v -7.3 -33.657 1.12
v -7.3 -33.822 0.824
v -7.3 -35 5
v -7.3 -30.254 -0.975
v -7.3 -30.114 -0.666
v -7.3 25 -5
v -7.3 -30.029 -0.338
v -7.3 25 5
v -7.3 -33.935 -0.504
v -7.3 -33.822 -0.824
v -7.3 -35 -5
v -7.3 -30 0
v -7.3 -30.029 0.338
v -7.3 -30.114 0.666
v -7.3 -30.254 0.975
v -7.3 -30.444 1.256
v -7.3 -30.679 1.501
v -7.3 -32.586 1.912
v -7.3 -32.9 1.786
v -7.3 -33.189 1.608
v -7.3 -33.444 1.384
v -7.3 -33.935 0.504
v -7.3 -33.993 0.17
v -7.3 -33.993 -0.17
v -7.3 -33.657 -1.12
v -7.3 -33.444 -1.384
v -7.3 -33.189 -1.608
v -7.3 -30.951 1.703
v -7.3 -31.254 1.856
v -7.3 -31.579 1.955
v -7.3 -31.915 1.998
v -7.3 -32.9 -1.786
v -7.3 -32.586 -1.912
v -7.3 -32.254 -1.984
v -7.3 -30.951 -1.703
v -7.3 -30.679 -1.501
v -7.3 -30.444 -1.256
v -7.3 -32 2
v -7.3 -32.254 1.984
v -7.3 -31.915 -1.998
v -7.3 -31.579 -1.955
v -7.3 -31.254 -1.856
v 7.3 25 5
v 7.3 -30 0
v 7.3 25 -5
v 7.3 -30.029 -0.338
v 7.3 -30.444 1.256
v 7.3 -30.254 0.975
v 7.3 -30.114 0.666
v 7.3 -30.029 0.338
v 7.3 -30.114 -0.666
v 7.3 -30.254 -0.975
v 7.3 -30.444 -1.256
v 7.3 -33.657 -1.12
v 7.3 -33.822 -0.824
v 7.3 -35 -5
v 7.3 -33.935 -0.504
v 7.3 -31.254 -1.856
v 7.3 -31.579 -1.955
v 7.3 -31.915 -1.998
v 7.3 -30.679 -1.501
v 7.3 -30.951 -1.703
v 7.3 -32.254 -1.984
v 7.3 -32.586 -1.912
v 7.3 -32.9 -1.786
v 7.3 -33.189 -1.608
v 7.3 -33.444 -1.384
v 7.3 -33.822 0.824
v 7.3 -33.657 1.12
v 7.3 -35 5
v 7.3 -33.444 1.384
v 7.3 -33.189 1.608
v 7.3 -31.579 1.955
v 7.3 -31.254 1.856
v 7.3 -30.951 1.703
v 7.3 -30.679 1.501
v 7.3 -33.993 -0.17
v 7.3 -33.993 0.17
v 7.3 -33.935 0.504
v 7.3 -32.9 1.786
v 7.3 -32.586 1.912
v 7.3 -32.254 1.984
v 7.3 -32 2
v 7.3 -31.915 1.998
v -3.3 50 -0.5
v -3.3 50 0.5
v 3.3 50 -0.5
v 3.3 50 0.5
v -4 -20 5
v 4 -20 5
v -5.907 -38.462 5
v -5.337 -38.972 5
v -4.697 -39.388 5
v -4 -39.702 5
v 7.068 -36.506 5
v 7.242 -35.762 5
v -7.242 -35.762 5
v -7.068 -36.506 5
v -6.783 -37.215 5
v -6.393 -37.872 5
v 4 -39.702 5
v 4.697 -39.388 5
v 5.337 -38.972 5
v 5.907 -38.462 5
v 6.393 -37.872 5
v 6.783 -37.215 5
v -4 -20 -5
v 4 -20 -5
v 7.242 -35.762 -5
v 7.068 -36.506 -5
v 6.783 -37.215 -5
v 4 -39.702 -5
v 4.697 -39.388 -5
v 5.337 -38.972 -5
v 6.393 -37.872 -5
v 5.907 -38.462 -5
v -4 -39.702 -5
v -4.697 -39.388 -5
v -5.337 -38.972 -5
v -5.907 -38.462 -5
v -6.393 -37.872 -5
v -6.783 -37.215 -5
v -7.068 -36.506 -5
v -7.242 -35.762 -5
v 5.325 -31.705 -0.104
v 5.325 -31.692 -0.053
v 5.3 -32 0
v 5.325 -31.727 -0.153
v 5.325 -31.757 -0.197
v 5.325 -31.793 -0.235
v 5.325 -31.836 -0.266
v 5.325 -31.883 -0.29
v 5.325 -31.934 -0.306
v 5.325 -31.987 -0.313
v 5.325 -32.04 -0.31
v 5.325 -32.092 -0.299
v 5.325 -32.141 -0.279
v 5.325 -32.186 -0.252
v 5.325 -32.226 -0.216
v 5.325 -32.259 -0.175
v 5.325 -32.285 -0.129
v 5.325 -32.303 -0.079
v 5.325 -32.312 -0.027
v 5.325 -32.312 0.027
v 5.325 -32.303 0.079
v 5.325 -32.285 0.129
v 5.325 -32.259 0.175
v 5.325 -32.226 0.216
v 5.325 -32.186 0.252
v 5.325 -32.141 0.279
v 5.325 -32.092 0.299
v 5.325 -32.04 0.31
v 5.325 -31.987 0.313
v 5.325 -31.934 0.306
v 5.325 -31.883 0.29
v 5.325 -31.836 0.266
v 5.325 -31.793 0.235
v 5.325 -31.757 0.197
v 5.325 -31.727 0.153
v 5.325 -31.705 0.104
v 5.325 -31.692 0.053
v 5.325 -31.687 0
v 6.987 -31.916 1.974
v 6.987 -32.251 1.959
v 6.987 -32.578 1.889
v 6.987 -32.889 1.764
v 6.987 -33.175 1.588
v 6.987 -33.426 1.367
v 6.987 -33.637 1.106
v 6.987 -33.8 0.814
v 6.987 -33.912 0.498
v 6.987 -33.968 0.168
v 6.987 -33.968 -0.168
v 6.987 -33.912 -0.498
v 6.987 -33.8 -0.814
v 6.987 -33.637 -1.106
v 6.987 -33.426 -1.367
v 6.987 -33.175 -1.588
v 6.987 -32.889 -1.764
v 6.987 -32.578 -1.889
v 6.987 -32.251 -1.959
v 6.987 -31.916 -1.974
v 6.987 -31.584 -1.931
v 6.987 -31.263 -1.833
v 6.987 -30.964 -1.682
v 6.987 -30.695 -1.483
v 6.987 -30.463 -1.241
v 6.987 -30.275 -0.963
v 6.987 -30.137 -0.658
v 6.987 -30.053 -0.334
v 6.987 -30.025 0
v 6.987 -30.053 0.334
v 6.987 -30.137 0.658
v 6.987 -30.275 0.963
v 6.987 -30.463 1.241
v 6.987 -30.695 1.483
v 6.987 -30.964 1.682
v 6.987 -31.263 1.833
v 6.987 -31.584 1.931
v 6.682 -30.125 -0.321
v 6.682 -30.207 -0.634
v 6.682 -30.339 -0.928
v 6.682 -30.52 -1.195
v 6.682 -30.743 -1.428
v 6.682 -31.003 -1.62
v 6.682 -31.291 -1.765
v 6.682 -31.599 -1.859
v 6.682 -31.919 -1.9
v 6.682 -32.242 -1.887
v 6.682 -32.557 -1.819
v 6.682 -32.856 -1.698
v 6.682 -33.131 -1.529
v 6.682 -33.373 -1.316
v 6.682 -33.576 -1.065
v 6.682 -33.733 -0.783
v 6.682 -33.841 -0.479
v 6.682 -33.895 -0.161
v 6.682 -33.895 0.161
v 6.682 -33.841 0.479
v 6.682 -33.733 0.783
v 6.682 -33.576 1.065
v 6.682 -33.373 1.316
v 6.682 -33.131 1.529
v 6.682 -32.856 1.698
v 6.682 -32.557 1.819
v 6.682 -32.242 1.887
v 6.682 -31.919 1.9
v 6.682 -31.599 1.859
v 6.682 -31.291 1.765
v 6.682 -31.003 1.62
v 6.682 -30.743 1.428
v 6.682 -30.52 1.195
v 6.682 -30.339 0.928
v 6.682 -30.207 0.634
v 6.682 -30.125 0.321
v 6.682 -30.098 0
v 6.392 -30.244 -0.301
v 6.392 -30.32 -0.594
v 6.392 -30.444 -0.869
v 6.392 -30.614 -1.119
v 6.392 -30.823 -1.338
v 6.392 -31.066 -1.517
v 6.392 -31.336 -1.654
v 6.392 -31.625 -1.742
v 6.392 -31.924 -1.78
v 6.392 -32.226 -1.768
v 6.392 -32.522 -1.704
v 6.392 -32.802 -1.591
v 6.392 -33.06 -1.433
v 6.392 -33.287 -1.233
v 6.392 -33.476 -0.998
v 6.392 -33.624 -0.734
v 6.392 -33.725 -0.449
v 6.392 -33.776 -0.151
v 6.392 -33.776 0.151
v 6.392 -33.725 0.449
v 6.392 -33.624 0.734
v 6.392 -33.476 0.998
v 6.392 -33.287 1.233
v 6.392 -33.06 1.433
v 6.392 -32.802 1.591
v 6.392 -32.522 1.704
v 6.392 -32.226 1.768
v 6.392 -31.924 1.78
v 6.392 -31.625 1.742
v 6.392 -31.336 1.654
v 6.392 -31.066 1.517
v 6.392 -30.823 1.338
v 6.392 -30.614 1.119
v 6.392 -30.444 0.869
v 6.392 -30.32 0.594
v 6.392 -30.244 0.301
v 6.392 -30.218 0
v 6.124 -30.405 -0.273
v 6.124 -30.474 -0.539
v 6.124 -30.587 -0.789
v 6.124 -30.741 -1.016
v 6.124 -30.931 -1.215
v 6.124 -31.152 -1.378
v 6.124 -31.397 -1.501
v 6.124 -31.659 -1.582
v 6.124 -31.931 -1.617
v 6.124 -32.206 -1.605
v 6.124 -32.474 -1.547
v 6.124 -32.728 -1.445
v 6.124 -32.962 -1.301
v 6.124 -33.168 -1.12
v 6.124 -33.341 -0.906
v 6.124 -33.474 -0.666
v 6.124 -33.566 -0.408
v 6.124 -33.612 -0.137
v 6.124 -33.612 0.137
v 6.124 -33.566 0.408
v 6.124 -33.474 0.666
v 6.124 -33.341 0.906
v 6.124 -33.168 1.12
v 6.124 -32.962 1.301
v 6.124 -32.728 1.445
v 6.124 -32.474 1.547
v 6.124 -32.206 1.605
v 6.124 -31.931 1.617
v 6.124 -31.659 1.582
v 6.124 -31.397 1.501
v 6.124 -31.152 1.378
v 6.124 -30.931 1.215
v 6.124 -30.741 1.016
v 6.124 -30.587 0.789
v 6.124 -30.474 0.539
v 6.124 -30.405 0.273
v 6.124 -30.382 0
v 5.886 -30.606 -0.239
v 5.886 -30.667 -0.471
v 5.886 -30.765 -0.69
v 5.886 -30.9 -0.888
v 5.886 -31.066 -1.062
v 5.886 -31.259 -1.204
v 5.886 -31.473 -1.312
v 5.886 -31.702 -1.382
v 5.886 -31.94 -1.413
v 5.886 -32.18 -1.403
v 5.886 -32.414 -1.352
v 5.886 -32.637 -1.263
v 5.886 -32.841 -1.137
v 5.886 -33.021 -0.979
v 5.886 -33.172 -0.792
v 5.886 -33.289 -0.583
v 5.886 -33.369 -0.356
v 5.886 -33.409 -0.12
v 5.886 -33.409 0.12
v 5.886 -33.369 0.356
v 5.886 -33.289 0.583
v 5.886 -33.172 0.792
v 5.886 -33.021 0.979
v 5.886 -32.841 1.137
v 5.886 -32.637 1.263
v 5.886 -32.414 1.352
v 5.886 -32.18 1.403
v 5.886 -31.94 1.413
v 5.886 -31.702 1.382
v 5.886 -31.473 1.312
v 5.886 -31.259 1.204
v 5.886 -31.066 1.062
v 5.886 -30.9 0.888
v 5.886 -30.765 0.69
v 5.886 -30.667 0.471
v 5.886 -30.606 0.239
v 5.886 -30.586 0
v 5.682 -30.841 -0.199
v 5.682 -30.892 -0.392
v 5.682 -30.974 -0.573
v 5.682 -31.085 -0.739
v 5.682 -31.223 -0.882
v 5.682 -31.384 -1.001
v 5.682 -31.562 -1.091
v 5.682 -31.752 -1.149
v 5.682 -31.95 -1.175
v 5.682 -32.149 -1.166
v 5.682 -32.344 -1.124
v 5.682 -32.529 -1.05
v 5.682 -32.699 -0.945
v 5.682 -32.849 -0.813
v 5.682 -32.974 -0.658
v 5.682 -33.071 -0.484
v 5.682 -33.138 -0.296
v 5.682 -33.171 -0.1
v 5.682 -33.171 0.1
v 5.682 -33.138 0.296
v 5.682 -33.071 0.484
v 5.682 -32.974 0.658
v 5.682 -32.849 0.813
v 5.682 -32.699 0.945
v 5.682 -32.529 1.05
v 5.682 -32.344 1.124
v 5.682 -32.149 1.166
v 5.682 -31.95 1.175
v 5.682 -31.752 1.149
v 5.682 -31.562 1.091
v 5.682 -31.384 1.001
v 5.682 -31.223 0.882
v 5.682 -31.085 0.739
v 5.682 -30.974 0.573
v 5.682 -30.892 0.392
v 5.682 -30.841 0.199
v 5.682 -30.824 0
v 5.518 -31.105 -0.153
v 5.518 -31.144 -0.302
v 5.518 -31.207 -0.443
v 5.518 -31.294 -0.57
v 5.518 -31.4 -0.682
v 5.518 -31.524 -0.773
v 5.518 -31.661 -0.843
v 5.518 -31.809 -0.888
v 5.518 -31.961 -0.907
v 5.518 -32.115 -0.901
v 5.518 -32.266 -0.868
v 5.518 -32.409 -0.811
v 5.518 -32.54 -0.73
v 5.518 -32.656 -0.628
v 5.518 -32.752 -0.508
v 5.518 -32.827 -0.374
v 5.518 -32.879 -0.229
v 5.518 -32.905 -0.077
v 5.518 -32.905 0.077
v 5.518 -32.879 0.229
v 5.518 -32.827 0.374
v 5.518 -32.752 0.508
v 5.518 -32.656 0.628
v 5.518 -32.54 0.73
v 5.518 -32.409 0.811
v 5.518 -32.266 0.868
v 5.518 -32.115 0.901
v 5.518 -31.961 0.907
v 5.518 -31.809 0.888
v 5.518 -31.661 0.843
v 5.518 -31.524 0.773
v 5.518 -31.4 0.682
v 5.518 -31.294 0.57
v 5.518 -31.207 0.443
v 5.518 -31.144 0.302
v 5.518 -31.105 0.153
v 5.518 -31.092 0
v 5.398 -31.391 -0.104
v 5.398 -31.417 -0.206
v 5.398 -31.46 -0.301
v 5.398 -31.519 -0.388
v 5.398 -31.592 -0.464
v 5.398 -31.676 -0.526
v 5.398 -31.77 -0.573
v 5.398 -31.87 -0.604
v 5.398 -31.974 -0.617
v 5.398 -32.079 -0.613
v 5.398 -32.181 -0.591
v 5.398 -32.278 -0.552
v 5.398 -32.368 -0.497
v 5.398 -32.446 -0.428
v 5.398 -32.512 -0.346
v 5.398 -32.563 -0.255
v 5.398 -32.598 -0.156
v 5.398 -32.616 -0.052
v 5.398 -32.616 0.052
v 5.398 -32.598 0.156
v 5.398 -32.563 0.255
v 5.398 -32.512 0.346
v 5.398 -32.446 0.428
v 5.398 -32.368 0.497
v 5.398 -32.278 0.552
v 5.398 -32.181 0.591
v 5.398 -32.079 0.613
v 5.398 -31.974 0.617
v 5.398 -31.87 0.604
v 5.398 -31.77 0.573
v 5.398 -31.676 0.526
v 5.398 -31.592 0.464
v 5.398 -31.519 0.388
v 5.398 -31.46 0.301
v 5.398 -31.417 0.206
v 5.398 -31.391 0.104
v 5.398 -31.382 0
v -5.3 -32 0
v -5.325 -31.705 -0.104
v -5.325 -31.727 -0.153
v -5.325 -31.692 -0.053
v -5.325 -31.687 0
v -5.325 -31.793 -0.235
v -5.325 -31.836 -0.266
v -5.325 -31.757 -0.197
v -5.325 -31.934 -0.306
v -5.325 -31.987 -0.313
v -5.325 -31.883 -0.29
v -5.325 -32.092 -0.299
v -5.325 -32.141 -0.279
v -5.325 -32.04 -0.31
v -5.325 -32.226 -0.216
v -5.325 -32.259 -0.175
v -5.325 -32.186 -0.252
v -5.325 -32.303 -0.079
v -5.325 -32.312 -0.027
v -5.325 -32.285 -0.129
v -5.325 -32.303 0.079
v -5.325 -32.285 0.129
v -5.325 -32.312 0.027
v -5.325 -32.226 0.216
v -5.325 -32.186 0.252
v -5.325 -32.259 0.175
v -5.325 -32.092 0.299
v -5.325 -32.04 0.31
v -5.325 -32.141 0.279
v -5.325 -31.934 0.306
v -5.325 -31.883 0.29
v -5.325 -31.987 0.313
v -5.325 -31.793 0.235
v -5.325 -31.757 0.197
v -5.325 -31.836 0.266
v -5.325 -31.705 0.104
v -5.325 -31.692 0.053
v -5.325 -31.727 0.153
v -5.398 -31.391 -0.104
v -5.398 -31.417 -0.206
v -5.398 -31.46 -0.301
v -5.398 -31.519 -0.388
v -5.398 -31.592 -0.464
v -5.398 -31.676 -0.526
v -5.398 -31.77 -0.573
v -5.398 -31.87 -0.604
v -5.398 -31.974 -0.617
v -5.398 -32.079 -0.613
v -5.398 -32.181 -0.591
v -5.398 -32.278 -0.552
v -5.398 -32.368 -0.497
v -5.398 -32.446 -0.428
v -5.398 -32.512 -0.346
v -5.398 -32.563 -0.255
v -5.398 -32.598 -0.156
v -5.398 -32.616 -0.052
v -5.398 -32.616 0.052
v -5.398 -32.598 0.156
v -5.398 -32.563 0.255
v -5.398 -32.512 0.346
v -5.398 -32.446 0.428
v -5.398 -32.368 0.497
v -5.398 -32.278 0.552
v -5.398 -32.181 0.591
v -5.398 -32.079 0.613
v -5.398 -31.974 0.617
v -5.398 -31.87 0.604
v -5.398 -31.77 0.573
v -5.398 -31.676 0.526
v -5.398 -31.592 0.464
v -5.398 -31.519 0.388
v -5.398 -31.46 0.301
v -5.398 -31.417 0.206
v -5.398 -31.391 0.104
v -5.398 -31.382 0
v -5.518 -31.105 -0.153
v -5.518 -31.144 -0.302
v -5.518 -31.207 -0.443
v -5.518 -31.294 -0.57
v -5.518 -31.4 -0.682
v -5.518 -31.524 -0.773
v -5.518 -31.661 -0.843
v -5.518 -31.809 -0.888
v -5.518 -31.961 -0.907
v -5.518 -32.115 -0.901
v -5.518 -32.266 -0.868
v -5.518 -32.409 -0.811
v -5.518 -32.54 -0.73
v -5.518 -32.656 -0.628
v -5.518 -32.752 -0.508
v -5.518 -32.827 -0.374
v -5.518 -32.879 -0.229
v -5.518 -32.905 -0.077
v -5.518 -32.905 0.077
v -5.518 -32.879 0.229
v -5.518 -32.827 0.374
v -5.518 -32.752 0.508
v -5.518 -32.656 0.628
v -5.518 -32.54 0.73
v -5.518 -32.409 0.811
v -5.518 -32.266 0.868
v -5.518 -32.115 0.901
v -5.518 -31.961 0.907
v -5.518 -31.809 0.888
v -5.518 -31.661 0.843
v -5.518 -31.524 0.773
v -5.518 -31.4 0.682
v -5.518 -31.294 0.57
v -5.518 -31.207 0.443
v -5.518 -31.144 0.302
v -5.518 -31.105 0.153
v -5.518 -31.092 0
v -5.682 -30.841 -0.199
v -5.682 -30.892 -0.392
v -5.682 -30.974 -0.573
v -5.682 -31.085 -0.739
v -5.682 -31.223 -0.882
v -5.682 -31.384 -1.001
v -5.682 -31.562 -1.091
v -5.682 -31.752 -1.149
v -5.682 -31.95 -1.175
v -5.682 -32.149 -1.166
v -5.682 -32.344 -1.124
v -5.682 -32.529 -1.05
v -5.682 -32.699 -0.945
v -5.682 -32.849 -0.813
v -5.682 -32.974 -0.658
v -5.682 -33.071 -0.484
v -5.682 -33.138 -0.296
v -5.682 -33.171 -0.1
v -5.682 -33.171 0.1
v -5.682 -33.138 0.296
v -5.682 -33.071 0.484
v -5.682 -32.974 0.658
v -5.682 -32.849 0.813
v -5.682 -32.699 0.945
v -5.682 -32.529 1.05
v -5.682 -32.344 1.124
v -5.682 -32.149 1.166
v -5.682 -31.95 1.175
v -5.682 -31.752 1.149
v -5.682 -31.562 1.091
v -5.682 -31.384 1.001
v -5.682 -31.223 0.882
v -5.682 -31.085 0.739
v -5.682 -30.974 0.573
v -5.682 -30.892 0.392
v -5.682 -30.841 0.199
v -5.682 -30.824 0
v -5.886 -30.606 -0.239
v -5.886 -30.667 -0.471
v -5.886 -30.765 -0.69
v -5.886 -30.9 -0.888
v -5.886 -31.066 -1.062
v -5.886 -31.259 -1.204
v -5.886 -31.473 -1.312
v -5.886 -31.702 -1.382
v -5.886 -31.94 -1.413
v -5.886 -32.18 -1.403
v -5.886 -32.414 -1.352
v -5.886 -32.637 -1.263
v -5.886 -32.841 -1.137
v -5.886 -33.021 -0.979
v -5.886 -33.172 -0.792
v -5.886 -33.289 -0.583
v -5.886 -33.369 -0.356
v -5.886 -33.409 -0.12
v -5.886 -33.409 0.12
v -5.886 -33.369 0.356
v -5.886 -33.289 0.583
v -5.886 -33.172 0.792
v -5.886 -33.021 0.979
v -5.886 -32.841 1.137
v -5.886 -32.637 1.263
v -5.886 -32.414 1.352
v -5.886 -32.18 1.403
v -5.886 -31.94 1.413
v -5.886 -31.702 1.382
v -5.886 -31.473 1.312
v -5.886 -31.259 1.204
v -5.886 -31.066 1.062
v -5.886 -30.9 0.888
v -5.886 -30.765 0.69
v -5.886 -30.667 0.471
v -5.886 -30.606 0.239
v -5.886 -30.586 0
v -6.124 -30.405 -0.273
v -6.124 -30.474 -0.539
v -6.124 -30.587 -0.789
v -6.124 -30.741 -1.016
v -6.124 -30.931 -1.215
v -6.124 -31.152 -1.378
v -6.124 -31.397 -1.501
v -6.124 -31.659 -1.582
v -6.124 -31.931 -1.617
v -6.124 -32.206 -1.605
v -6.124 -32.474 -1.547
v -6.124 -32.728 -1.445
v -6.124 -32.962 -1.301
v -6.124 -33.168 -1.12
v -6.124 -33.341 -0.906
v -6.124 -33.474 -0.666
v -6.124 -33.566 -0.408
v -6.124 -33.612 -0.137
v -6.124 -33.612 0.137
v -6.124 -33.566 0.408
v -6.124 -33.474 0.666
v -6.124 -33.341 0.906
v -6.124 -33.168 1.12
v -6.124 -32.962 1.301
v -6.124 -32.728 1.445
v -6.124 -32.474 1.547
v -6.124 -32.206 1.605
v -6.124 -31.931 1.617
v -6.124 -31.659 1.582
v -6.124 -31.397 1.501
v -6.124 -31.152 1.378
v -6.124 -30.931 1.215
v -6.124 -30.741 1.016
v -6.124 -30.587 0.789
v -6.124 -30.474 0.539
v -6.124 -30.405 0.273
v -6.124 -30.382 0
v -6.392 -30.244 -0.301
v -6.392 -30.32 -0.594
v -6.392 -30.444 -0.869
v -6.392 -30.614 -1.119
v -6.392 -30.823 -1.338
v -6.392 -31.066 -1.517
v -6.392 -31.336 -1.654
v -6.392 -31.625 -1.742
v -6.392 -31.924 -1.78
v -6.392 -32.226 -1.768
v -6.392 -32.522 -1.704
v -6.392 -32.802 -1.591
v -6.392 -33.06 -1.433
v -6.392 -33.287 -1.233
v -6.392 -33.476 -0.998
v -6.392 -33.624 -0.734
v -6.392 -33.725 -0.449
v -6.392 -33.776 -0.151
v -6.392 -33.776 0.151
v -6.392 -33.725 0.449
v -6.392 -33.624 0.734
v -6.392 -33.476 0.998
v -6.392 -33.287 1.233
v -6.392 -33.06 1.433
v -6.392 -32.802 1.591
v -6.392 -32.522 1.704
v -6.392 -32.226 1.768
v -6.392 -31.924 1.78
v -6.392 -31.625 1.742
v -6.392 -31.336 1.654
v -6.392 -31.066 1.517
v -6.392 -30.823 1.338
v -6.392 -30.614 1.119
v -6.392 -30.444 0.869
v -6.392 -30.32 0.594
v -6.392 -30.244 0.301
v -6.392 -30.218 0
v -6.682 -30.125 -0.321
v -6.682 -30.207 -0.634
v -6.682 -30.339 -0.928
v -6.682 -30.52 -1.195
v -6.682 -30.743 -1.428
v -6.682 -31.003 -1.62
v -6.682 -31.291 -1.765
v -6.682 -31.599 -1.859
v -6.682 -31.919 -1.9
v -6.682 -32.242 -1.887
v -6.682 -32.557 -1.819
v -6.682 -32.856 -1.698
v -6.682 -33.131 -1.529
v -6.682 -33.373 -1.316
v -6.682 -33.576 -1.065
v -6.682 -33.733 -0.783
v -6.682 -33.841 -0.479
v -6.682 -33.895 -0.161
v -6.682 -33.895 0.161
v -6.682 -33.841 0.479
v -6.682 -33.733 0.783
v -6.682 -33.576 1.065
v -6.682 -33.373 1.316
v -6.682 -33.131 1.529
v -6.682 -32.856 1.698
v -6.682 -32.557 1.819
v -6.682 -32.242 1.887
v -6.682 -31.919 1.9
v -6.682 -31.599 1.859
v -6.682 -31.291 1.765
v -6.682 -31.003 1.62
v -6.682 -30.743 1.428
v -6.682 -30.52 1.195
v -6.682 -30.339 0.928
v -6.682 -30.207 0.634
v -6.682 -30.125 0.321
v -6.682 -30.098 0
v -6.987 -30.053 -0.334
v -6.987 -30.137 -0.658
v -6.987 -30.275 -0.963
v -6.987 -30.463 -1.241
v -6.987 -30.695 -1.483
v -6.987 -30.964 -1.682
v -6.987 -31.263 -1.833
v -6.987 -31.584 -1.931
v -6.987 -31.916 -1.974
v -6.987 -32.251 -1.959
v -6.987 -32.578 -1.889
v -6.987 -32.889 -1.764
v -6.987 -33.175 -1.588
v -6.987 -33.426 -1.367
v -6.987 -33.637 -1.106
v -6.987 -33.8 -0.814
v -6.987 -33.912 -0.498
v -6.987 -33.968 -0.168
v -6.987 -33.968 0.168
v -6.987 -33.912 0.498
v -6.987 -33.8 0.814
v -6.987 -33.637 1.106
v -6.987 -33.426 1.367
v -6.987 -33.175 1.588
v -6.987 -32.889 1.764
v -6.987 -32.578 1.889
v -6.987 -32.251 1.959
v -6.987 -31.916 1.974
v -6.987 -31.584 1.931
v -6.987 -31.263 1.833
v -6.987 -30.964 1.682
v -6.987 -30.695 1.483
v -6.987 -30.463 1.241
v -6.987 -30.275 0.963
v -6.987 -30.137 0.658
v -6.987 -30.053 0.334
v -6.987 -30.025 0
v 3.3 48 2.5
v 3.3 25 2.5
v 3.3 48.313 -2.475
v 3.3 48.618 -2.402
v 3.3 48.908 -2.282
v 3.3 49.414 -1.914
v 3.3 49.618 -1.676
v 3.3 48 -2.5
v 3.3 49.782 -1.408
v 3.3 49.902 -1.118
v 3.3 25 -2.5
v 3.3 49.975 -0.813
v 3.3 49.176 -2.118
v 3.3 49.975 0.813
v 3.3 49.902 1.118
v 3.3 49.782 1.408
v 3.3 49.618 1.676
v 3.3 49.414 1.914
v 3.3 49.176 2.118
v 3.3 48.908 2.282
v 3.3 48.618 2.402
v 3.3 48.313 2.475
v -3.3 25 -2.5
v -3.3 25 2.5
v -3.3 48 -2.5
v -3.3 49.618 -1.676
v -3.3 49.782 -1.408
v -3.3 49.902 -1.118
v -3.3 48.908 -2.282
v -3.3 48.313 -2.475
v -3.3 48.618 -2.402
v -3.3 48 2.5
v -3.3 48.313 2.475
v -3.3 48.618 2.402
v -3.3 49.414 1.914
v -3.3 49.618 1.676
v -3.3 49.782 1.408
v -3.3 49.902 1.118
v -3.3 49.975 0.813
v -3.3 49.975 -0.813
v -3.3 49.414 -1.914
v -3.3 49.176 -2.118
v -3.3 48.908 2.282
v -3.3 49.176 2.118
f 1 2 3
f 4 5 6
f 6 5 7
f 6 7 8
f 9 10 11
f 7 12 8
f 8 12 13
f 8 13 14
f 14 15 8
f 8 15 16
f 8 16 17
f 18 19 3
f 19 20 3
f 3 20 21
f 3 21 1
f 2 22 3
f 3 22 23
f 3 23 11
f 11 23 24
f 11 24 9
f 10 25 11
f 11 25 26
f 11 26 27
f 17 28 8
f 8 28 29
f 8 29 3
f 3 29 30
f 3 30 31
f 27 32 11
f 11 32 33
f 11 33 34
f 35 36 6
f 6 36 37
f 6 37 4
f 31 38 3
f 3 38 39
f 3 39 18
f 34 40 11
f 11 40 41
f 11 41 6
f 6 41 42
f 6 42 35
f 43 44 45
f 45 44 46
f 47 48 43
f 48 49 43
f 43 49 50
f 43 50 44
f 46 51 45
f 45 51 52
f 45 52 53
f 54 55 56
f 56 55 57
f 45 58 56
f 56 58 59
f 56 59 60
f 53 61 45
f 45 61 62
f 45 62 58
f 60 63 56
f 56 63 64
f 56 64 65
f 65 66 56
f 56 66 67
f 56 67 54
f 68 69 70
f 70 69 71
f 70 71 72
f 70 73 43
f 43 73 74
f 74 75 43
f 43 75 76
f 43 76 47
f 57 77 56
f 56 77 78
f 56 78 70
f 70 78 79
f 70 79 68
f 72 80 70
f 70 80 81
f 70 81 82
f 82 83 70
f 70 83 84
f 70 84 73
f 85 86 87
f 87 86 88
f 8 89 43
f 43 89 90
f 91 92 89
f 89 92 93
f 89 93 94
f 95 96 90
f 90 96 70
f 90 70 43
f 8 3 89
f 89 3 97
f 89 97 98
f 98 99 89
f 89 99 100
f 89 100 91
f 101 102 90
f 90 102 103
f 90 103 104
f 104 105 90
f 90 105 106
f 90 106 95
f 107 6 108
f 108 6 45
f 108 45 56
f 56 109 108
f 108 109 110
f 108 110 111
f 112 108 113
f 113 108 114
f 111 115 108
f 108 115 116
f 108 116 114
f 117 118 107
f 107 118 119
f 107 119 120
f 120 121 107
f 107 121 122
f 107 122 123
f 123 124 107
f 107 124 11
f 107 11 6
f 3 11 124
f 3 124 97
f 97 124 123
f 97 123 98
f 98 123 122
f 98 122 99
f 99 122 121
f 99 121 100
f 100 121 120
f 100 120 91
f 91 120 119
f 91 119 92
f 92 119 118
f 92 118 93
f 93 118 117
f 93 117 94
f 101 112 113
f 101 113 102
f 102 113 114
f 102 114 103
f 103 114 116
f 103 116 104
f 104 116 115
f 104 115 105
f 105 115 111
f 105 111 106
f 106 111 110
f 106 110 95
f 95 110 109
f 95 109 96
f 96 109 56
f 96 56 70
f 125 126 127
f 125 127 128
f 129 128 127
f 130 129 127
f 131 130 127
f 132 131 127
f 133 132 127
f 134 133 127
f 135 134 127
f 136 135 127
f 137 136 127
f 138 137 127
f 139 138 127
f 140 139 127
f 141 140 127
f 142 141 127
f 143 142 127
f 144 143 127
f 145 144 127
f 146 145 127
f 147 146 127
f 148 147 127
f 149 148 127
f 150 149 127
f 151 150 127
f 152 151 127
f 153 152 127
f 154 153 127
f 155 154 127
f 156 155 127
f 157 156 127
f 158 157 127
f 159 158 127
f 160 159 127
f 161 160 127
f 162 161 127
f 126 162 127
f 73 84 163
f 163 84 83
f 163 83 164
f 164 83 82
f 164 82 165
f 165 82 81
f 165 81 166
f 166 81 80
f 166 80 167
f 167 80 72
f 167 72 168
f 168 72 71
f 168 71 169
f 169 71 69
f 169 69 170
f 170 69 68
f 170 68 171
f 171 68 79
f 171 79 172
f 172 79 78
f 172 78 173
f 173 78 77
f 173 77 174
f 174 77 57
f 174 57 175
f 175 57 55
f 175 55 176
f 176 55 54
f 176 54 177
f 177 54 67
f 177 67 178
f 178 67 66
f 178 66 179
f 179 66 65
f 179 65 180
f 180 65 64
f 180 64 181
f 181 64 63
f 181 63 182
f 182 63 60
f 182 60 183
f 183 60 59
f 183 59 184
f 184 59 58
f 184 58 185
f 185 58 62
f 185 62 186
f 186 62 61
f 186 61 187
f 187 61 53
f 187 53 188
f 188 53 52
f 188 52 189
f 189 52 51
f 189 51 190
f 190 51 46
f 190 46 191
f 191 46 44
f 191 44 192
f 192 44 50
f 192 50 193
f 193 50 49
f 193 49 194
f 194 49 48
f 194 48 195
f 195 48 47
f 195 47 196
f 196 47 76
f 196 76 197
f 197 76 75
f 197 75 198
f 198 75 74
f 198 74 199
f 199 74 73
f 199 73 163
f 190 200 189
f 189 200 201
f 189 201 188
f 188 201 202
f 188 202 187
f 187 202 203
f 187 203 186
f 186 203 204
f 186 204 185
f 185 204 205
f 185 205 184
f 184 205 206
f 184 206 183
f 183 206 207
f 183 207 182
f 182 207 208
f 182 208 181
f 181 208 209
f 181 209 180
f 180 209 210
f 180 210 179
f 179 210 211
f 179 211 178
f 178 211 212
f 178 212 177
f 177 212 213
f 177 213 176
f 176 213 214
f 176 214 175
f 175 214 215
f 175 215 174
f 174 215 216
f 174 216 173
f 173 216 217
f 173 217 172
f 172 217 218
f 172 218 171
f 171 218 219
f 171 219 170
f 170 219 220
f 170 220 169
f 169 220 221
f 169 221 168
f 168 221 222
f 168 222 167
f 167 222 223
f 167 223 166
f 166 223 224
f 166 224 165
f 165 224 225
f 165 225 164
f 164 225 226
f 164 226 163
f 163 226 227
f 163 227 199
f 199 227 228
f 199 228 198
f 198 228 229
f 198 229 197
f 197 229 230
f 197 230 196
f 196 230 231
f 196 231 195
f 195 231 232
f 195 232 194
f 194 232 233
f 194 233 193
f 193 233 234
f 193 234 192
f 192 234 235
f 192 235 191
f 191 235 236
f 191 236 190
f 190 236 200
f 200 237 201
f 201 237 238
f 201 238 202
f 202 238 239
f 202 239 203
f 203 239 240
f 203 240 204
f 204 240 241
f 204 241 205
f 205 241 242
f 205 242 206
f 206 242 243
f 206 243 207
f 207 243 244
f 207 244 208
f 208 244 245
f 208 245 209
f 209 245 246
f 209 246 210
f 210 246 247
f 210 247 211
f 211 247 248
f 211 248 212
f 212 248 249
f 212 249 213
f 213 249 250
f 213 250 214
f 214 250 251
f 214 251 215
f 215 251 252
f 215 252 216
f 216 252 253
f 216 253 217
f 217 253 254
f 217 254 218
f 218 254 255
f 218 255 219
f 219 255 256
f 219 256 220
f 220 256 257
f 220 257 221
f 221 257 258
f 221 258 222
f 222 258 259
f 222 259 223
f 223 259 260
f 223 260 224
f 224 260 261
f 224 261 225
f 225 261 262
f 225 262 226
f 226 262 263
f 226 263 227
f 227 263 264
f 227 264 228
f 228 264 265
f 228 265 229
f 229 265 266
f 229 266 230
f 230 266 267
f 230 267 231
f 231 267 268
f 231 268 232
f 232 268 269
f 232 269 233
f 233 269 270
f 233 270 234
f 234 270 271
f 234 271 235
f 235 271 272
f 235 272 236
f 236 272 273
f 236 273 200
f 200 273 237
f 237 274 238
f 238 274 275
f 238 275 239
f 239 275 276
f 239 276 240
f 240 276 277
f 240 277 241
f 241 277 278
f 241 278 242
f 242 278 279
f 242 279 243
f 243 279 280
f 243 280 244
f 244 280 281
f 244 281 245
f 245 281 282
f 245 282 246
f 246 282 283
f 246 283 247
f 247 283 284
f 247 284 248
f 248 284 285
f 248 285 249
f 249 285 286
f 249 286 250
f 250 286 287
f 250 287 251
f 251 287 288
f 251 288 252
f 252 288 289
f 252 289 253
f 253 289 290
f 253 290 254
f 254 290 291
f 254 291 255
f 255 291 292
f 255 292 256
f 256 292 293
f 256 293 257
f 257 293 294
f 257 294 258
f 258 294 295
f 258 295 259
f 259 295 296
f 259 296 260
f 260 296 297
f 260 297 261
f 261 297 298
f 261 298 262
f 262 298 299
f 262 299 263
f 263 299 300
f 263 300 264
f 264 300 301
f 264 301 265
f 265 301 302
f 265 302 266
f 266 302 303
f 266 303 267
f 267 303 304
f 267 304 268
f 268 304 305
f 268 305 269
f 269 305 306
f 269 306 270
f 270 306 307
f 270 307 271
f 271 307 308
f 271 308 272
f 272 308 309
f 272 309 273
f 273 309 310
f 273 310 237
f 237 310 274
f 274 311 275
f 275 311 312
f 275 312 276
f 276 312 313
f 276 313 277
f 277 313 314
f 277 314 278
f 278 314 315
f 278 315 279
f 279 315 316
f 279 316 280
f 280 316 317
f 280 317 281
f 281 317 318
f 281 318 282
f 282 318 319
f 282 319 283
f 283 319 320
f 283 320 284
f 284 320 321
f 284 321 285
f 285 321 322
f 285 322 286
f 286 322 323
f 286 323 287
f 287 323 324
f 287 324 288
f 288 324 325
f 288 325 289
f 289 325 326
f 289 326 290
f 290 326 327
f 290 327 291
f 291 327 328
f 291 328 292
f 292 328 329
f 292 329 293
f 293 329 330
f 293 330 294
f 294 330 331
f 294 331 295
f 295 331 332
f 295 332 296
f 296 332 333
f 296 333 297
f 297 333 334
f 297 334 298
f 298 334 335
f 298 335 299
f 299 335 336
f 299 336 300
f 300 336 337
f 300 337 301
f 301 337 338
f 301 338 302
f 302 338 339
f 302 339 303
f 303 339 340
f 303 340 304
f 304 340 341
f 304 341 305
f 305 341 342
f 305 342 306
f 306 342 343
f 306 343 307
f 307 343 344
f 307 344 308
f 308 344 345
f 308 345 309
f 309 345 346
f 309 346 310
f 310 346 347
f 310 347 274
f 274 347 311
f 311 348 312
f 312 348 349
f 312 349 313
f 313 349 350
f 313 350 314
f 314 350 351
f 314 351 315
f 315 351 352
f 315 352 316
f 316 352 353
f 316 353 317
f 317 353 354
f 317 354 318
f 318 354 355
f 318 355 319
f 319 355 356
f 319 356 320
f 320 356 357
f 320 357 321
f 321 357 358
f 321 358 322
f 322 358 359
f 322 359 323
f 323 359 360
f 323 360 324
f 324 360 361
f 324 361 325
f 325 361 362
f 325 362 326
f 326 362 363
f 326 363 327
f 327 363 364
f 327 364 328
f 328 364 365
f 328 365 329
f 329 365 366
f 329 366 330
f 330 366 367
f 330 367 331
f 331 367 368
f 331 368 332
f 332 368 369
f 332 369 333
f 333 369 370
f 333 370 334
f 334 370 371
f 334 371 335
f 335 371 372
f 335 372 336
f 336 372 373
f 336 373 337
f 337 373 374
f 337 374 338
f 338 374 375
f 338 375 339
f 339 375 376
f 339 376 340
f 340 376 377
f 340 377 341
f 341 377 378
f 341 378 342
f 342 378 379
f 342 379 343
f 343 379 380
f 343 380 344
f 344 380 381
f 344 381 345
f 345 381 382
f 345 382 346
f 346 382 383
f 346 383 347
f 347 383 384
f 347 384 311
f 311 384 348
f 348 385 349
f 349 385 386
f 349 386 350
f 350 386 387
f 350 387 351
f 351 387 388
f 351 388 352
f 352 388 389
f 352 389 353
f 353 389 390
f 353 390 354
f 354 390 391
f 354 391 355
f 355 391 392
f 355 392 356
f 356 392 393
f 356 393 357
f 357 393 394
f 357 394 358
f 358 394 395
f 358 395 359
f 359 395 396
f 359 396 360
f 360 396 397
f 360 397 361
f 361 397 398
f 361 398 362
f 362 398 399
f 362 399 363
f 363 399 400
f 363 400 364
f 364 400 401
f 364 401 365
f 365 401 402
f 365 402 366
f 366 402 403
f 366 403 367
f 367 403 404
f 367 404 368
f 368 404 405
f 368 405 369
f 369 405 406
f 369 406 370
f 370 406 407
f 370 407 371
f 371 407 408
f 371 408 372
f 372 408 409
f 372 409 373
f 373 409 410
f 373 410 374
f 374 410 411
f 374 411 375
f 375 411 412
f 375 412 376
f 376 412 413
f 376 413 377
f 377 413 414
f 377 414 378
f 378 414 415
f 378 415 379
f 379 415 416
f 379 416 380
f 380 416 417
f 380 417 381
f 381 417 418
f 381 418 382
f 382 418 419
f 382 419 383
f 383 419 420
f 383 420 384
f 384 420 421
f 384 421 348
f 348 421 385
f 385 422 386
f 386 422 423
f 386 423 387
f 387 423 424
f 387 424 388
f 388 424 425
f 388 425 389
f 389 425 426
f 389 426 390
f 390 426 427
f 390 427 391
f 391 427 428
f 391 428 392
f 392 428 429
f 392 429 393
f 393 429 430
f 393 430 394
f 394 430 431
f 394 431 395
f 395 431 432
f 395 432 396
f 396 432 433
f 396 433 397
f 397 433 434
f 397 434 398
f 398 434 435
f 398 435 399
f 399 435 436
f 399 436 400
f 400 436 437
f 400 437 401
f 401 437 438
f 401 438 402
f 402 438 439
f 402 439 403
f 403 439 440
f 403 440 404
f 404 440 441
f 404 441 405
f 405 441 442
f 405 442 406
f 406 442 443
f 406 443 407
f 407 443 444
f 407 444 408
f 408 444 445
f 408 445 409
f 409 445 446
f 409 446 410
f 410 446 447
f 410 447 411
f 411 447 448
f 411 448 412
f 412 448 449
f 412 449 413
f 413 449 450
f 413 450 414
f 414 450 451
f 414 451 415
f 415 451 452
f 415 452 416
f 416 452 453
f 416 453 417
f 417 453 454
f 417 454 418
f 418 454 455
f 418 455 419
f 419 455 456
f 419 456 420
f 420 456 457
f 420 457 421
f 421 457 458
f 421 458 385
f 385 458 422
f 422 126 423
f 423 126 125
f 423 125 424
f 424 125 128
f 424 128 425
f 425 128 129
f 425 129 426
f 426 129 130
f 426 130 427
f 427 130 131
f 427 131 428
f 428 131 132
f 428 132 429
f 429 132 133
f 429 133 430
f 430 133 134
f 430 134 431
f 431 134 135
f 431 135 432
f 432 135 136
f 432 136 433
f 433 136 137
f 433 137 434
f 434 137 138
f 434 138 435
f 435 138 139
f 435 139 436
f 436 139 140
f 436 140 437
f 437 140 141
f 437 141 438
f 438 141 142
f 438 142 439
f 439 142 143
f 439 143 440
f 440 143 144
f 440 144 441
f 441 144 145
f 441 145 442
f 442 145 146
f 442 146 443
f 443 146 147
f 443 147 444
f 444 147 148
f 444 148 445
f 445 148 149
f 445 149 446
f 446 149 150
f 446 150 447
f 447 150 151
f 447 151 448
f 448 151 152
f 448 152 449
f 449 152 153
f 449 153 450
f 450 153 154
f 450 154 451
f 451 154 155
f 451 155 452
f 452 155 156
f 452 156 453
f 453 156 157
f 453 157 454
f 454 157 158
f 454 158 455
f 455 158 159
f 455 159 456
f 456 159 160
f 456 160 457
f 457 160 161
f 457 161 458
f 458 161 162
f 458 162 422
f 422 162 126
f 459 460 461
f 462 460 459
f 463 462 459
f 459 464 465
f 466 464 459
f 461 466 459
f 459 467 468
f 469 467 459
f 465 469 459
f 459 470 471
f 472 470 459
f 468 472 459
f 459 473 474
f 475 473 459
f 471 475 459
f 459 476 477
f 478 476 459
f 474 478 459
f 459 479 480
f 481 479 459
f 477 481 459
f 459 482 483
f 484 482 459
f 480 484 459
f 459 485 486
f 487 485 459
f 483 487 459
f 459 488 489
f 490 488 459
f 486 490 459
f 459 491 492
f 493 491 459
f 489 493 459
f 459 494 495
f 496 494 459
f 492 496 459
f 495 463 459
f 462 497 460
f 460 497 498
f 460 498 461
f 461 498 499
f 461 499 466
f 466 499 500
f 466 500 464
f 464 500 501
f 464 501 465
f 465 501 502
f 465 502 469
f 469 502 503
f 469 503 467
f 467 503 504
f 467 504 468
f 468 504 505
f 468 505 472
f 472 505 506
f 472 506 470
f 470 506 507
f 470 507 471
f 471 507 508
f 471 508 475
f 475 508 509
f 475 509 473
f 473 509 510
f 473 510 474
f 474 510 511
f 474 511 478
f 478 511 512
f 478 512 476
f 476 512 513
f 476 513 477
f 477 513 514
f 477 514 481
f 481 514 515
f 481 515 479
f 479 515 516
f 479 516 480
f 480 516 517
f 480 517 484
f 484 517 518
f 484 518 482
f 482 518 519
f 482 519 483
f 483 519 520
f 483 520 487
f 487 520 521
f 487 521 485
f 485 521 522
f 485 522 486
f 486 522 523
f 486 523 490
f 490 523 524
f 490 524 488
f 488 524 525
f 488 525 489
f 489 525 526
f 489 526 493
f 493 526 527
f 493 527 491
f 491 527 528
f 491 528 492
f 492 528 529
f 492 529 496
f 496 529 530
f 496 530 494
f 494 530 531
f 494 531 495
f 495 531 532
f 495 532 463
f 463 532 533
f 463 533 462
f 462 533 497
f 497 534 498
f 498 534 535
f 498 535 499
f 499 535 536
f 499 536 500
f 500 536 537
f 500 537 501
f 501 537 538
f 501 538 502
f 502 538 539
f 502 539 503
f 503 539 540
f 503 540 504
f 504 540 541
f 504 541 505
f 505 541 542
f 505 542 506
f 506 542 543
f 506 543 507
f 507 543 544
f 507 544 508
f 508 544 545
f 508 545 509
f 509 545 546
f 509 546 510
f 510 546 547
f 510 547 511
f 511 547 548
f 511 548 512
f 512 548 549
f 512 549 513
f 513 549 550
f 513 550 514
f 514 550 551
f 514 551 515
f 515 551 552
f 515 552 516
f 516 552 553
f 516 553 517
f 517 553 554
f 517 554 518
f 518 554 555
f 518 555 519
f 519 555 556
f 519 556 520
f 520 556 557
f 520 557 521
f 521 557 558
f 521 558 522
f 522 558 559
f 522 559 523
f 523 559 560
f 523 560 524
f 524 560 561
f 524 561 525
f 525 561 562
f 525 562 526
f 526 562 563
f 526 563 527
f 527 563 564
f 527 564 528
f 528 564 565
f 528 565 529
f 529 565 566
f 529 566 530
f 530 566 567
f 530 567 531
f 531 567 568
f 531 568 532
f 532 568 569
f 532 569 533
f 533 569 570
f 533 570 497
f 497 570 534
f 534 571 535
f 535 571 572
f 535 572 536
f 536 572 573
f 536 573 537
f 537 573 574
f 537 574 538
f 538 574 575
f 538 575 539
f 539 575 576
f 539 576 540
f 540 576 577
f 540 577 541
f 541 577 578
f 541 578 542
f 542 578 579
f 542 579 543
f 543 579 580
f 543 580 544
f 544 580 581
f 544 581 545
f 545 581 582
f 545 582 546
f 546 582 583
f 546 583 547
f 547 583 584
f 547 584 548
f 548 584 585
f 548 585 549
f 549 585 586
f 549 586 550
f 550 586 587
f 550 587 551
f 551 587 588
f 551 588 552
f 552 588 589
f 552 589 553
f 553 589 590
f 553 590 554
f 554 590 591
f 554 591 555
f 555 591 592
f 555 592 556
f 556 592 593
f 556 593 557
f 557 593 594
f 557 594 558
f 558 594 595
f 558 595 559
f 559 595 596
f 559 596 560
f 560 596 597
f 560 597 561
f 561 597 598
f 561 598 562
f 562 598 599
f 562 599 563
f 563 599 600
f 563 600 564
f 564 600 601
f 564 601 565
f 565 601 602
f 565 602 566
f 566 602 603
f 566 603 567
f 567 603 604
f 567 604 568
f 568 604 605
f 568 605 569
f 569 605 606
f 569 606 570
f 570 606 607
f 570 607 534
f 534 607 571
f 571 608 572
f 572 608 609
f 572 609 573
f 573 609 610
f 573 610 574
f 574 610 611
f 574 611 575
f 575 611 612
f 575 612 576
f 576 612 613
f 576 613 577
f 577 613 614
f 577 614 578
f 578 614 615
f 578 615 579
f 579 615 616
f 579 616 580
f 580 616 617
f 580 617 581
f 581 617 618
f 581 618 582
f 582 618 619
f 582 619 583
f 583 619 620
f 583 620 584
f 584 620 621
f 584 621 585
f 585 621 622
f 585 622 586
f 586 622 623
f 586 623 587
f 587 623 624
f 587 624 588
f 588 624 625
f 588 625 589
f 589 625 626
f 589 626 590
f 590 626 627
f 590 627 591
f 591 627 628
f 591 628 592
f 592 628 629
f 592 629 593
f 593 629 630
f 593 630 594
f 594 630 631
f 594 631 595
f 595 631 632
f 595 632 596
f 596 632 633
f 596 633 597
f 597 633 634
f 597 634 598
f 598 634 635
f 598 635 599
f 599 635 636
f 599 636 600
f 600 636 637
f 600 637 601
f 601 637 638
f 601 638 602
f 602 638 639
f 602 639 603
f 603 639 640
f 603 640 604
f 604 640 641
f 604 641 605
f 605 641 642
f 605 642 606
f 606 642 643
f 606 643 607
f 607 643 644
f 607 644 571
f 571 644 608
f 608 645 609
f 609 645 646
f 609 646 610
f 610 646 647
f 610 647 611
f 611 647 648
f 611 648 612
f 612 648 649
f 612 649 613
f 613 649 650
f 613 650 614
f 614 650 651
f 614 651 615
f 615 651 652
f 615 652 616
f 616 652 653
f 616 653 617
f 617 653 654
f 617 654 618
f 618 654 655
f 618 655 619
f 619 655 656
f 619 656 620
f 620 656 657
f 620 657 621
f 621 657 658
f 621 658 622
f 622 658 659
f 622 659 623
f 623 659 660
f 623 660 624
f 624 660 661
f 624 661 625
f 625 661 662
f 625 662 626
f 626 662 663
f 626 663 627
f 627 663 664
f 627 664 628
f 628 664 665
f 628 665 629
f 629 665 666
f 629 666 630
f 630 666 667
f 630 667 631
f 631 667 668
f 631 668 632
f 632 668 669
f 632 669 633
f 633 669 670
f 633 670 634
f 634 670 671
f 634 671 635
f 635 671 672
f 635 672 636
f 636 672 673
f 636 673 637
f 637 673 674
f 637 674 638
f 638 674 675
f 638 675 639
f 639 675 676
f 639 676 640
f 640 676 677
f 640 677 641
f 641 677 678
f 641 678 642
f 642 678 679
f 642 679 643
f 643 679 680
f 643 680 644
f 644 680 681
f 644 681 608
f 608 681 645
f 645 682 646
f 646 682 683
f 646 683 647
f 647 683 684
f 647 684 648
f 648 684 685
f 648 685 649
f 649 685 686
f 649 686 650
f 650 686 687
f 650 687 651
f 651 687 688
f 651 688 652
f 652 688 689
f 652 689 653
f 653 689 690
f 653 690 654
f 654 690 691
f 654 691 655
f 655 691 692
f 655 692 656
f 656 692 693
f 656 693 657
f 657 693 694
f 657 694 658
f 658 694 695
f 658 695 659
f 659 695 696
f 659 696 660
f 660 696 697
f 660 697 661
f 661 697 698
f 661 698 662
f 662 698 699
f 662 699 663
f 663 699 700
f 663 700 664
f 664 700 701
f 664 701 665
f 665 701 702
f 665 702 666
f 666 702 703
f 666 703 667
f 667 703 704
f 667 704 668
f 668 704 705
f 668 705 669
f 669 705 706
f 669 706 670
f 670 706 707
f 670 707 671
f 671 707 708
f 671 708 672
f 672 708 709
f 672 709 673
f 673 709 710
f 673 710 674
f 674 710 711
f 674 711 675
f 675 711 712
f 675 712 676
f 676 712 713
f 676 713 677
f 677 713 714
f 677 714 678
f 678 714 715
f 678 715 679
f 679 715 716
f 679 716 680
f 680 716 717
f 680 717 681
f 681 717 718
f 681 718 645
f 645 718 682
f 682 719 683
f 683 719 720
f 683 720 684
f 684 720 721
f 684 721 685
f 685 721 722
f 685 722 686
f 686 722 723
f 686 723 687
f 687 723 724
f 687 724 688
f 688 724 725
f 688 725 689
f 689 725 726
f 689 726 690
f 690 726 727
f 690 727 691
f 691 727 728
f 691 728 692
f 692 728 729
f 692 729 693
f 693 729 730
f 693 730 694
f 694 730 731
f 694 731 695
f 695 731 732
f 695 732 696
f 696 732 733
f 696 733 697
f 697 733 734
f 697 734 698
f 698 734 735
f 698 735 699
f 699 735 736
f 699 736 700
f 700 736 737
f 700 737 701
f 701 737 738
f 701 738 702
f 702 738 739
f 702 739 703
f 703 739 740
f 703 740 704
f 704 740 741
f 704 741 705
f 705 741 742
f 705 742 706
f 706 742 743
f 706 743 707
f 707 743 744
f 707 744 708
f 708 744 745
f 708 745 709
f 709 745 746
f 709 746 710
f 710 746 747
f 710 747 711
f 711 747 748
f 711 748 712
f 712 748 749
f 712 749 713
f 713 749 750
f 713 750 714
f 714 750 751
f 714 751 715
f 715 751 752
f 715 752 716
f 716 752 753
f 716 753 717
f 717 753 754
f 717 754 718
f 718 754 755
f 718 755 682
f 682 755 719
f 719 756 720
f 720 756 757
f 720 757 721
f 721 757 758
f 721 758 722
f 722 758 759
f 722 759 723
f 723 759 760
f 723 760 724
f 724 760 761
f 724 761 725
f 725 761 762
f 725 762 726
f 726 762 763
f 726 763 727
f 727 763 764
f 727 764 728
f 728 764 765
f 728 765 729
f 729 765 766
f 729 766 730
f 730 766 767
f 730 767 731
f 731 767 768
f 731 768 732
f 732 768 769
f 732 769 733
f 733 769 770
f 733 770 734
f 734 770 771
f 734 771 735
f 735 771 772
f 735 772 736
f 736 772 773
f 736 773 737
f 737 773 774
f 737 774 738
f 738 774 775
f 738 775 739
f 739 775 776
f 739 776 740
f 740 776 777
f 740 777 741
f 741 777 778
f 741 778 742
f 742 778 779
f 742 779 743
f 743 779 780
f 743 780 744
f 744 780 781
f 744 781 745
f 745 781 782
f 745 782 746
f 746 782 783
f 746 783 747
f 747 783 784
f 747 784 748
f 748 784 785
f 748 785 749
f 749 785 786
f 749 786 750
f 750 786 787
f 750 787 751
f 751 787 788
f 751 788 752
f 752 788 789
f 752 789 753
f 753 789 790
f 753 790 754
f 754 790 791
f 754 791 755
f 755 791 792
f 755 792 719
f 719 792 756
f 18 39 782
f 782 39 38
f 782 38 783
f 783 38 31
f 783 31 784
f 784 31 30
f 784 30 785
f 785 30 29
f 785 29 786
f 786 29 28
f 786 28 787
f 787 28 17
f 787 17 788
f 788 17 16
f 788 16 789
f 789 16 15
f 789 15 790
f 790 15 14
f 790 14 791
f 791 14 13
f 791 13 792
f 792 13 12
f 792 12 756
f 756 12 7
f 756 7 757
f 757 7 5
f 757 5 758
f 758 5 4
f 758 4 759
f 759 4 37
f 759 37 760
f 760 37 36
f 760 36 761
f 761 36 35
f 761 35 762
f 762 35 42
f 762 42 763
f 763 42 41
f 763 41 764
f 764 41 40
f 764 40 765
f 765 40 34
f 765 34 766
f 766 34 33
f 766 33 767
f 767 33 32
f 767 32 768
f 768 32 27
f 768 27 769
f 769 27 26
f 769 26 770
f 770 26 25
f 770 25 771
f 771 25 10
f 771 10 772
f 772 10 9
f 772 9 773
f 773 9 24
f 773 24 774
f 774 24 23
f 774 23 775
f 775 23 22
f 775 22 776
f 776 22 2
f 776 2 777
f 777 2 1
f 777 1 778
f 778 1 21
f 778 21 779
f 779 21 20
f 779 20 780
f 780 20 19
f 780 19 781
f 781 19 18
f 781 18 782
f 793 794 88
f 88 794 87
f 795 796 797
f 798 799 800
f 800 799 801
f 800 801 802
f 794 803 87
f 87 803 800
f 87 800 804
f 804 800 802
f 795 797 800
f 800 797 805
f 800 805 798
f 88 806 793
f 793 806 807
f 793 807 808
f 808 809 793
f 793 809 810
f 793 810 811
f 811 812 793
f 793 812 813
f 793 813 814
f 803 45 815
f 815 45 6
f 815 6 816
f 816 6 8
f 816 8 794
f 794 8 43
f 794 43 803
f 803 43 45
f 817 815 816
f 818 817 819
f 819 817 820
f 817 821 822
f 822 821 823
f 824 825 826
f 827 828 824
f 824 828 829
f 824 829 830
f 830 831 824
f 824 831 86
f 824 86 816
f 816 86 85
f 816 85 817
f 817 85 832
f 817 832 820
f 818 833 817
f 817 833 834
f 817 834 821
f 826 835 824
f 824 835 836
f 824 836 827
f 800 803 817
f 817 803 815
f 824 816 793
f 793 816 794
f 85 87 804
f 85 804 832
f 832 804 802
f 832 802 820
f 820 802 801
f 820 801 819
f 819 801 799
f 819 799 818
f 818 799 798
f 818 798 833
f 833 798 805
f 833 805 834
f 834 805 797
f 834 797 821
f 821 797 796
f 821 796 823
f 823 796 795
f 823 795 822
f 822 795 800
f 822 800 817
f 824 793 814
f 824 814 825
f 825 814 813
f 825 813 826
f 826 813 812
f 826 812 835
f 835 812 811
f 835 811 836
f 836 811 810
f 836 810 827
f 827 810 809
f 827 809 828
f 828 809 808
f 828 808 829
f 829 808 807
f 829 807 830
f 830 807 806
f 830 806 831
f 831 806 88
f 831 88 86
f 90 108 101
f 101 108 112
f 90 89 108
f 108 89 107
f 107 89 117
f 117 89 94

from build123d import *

# Parameters (mm, degrees)
SKETCH1_W           = 14.6
SKETCH1_H           = 90
BOSS_EXTRUDE1_DEPTH = 5
FILLET1_R           = 5
SKETCH6_W           = 4
SKETCH6_H           = 25
CUT_EXTRUDE1_DEPTH  = 52.510096098
SKETCH7_W           = 2.5
SKETCH7_H           = 25
CUT_EXTRUDE2_DEPTH  = 52.355233424
FILLET4_R           = 2
SKETCH8_W           = 8
SKETCH8_H           = 20
CUT_EXTRUDE3_DEPTH  = 52.510096098


with BuildPart() as part:
    # Sketch1 → Boss-Extrude1 (new, symmetric)
    with BuildSketch(Plane.XY):
        with Locations((0, 5)):
            Rectangle(SKETCH1_W, SKETCH1_H)
    extrude(amount=BOSS_EXTRUDE1_DEPTH, both=True)

    # Fillet1
    fillet1_edges = [part.edges().sort_by_distance(p)[0] for p in [
        (7.3, -40, 0),
        (-7.3, -40, 0),
    ]]
    fillet(fillet1_edges, radius=FILLET1_R)

    # Sketch4 → Cut-Revolve2 (revolve, cut)
    with BuildSketch(Plane.XY):
        with BuildLine():
            Line((-7.3, -32), (-5.3, -32))
            ThreePointArc((-5.3, -32), (-5.885786438, -30.585786438), (-7.3, -30))
            Line((-7.3, -30), (-7.3, -32))
        make_face()
        with BuildLine():
            Line((7.3, -32), (5.3, -32))
            ThreePointArc((5.3, -32), (5.885786438, -30.585786438), (7.3, -30))
            Line((7.3, -30), (7.3, -32))
        make_face()
    revolve(axis=Axis((-17.666251228, -32, 0), (1, 0, 0)), mode=Mode.SUBTRACT)

    # Sketch6 → Cut-Extrude1 (cut, through all)
    with BuildSketch(Plane.XY.offset(5)):
        with Locations((-5.3, 37.5)):
            Rectangle(SKETCH6_W, SKETCH6_H)
        with Locations((5.3, 37.5)):
            Rectangle(SKETCH6_W, SKETCH6_H)
    extrude(amount=-CUT_EXTRUDE1_DEPTH, mode=Mode.SUBTRACT)

    # Sketch7 → Cut-Extrude2 (cut, through all)
    with BuildSketch(Plane(origin=(3.3, 0, 0), x_dir=(0, 0, -1), z_dir=(1, 0, 0))):
        with Locations((-3.75, 37.5)):
            Rectangle(SKETCH7_W, SKETCH7_H)
        with Locations((3.75, 37.5)):
            Rectangle(SKETCH7_W, SKETCH7_H)
    extrude(amount=-CUT_EXTRUDE2_DEPTH, mode=Mode.SUBTRACT)

    # Fillet4
    fillet4_edges = [part.edges().sort_by_distance(p)[0] for p in [
        (0, 50, 2.5),
        (0, 50, -2.5),
    ]]
    fillet(fillet4_edges, radius=FILLET4_R)

    # Sketch8 → Cut-Extrude3 (cut, through all)
    with BuildSketch(Plane(origin=(0, 0, -5), x_dir=(-1, 0, 0), z_dir=(0, 0, -1))):
        with Locations((0, -30)):
            Rectangle(SKETCH8_W, SKETCH8_H)
    extrude(amount=-CUT_EXTRUDE3_DEPTH, mode=Mode.SUBTRACT)


solid = part.part
